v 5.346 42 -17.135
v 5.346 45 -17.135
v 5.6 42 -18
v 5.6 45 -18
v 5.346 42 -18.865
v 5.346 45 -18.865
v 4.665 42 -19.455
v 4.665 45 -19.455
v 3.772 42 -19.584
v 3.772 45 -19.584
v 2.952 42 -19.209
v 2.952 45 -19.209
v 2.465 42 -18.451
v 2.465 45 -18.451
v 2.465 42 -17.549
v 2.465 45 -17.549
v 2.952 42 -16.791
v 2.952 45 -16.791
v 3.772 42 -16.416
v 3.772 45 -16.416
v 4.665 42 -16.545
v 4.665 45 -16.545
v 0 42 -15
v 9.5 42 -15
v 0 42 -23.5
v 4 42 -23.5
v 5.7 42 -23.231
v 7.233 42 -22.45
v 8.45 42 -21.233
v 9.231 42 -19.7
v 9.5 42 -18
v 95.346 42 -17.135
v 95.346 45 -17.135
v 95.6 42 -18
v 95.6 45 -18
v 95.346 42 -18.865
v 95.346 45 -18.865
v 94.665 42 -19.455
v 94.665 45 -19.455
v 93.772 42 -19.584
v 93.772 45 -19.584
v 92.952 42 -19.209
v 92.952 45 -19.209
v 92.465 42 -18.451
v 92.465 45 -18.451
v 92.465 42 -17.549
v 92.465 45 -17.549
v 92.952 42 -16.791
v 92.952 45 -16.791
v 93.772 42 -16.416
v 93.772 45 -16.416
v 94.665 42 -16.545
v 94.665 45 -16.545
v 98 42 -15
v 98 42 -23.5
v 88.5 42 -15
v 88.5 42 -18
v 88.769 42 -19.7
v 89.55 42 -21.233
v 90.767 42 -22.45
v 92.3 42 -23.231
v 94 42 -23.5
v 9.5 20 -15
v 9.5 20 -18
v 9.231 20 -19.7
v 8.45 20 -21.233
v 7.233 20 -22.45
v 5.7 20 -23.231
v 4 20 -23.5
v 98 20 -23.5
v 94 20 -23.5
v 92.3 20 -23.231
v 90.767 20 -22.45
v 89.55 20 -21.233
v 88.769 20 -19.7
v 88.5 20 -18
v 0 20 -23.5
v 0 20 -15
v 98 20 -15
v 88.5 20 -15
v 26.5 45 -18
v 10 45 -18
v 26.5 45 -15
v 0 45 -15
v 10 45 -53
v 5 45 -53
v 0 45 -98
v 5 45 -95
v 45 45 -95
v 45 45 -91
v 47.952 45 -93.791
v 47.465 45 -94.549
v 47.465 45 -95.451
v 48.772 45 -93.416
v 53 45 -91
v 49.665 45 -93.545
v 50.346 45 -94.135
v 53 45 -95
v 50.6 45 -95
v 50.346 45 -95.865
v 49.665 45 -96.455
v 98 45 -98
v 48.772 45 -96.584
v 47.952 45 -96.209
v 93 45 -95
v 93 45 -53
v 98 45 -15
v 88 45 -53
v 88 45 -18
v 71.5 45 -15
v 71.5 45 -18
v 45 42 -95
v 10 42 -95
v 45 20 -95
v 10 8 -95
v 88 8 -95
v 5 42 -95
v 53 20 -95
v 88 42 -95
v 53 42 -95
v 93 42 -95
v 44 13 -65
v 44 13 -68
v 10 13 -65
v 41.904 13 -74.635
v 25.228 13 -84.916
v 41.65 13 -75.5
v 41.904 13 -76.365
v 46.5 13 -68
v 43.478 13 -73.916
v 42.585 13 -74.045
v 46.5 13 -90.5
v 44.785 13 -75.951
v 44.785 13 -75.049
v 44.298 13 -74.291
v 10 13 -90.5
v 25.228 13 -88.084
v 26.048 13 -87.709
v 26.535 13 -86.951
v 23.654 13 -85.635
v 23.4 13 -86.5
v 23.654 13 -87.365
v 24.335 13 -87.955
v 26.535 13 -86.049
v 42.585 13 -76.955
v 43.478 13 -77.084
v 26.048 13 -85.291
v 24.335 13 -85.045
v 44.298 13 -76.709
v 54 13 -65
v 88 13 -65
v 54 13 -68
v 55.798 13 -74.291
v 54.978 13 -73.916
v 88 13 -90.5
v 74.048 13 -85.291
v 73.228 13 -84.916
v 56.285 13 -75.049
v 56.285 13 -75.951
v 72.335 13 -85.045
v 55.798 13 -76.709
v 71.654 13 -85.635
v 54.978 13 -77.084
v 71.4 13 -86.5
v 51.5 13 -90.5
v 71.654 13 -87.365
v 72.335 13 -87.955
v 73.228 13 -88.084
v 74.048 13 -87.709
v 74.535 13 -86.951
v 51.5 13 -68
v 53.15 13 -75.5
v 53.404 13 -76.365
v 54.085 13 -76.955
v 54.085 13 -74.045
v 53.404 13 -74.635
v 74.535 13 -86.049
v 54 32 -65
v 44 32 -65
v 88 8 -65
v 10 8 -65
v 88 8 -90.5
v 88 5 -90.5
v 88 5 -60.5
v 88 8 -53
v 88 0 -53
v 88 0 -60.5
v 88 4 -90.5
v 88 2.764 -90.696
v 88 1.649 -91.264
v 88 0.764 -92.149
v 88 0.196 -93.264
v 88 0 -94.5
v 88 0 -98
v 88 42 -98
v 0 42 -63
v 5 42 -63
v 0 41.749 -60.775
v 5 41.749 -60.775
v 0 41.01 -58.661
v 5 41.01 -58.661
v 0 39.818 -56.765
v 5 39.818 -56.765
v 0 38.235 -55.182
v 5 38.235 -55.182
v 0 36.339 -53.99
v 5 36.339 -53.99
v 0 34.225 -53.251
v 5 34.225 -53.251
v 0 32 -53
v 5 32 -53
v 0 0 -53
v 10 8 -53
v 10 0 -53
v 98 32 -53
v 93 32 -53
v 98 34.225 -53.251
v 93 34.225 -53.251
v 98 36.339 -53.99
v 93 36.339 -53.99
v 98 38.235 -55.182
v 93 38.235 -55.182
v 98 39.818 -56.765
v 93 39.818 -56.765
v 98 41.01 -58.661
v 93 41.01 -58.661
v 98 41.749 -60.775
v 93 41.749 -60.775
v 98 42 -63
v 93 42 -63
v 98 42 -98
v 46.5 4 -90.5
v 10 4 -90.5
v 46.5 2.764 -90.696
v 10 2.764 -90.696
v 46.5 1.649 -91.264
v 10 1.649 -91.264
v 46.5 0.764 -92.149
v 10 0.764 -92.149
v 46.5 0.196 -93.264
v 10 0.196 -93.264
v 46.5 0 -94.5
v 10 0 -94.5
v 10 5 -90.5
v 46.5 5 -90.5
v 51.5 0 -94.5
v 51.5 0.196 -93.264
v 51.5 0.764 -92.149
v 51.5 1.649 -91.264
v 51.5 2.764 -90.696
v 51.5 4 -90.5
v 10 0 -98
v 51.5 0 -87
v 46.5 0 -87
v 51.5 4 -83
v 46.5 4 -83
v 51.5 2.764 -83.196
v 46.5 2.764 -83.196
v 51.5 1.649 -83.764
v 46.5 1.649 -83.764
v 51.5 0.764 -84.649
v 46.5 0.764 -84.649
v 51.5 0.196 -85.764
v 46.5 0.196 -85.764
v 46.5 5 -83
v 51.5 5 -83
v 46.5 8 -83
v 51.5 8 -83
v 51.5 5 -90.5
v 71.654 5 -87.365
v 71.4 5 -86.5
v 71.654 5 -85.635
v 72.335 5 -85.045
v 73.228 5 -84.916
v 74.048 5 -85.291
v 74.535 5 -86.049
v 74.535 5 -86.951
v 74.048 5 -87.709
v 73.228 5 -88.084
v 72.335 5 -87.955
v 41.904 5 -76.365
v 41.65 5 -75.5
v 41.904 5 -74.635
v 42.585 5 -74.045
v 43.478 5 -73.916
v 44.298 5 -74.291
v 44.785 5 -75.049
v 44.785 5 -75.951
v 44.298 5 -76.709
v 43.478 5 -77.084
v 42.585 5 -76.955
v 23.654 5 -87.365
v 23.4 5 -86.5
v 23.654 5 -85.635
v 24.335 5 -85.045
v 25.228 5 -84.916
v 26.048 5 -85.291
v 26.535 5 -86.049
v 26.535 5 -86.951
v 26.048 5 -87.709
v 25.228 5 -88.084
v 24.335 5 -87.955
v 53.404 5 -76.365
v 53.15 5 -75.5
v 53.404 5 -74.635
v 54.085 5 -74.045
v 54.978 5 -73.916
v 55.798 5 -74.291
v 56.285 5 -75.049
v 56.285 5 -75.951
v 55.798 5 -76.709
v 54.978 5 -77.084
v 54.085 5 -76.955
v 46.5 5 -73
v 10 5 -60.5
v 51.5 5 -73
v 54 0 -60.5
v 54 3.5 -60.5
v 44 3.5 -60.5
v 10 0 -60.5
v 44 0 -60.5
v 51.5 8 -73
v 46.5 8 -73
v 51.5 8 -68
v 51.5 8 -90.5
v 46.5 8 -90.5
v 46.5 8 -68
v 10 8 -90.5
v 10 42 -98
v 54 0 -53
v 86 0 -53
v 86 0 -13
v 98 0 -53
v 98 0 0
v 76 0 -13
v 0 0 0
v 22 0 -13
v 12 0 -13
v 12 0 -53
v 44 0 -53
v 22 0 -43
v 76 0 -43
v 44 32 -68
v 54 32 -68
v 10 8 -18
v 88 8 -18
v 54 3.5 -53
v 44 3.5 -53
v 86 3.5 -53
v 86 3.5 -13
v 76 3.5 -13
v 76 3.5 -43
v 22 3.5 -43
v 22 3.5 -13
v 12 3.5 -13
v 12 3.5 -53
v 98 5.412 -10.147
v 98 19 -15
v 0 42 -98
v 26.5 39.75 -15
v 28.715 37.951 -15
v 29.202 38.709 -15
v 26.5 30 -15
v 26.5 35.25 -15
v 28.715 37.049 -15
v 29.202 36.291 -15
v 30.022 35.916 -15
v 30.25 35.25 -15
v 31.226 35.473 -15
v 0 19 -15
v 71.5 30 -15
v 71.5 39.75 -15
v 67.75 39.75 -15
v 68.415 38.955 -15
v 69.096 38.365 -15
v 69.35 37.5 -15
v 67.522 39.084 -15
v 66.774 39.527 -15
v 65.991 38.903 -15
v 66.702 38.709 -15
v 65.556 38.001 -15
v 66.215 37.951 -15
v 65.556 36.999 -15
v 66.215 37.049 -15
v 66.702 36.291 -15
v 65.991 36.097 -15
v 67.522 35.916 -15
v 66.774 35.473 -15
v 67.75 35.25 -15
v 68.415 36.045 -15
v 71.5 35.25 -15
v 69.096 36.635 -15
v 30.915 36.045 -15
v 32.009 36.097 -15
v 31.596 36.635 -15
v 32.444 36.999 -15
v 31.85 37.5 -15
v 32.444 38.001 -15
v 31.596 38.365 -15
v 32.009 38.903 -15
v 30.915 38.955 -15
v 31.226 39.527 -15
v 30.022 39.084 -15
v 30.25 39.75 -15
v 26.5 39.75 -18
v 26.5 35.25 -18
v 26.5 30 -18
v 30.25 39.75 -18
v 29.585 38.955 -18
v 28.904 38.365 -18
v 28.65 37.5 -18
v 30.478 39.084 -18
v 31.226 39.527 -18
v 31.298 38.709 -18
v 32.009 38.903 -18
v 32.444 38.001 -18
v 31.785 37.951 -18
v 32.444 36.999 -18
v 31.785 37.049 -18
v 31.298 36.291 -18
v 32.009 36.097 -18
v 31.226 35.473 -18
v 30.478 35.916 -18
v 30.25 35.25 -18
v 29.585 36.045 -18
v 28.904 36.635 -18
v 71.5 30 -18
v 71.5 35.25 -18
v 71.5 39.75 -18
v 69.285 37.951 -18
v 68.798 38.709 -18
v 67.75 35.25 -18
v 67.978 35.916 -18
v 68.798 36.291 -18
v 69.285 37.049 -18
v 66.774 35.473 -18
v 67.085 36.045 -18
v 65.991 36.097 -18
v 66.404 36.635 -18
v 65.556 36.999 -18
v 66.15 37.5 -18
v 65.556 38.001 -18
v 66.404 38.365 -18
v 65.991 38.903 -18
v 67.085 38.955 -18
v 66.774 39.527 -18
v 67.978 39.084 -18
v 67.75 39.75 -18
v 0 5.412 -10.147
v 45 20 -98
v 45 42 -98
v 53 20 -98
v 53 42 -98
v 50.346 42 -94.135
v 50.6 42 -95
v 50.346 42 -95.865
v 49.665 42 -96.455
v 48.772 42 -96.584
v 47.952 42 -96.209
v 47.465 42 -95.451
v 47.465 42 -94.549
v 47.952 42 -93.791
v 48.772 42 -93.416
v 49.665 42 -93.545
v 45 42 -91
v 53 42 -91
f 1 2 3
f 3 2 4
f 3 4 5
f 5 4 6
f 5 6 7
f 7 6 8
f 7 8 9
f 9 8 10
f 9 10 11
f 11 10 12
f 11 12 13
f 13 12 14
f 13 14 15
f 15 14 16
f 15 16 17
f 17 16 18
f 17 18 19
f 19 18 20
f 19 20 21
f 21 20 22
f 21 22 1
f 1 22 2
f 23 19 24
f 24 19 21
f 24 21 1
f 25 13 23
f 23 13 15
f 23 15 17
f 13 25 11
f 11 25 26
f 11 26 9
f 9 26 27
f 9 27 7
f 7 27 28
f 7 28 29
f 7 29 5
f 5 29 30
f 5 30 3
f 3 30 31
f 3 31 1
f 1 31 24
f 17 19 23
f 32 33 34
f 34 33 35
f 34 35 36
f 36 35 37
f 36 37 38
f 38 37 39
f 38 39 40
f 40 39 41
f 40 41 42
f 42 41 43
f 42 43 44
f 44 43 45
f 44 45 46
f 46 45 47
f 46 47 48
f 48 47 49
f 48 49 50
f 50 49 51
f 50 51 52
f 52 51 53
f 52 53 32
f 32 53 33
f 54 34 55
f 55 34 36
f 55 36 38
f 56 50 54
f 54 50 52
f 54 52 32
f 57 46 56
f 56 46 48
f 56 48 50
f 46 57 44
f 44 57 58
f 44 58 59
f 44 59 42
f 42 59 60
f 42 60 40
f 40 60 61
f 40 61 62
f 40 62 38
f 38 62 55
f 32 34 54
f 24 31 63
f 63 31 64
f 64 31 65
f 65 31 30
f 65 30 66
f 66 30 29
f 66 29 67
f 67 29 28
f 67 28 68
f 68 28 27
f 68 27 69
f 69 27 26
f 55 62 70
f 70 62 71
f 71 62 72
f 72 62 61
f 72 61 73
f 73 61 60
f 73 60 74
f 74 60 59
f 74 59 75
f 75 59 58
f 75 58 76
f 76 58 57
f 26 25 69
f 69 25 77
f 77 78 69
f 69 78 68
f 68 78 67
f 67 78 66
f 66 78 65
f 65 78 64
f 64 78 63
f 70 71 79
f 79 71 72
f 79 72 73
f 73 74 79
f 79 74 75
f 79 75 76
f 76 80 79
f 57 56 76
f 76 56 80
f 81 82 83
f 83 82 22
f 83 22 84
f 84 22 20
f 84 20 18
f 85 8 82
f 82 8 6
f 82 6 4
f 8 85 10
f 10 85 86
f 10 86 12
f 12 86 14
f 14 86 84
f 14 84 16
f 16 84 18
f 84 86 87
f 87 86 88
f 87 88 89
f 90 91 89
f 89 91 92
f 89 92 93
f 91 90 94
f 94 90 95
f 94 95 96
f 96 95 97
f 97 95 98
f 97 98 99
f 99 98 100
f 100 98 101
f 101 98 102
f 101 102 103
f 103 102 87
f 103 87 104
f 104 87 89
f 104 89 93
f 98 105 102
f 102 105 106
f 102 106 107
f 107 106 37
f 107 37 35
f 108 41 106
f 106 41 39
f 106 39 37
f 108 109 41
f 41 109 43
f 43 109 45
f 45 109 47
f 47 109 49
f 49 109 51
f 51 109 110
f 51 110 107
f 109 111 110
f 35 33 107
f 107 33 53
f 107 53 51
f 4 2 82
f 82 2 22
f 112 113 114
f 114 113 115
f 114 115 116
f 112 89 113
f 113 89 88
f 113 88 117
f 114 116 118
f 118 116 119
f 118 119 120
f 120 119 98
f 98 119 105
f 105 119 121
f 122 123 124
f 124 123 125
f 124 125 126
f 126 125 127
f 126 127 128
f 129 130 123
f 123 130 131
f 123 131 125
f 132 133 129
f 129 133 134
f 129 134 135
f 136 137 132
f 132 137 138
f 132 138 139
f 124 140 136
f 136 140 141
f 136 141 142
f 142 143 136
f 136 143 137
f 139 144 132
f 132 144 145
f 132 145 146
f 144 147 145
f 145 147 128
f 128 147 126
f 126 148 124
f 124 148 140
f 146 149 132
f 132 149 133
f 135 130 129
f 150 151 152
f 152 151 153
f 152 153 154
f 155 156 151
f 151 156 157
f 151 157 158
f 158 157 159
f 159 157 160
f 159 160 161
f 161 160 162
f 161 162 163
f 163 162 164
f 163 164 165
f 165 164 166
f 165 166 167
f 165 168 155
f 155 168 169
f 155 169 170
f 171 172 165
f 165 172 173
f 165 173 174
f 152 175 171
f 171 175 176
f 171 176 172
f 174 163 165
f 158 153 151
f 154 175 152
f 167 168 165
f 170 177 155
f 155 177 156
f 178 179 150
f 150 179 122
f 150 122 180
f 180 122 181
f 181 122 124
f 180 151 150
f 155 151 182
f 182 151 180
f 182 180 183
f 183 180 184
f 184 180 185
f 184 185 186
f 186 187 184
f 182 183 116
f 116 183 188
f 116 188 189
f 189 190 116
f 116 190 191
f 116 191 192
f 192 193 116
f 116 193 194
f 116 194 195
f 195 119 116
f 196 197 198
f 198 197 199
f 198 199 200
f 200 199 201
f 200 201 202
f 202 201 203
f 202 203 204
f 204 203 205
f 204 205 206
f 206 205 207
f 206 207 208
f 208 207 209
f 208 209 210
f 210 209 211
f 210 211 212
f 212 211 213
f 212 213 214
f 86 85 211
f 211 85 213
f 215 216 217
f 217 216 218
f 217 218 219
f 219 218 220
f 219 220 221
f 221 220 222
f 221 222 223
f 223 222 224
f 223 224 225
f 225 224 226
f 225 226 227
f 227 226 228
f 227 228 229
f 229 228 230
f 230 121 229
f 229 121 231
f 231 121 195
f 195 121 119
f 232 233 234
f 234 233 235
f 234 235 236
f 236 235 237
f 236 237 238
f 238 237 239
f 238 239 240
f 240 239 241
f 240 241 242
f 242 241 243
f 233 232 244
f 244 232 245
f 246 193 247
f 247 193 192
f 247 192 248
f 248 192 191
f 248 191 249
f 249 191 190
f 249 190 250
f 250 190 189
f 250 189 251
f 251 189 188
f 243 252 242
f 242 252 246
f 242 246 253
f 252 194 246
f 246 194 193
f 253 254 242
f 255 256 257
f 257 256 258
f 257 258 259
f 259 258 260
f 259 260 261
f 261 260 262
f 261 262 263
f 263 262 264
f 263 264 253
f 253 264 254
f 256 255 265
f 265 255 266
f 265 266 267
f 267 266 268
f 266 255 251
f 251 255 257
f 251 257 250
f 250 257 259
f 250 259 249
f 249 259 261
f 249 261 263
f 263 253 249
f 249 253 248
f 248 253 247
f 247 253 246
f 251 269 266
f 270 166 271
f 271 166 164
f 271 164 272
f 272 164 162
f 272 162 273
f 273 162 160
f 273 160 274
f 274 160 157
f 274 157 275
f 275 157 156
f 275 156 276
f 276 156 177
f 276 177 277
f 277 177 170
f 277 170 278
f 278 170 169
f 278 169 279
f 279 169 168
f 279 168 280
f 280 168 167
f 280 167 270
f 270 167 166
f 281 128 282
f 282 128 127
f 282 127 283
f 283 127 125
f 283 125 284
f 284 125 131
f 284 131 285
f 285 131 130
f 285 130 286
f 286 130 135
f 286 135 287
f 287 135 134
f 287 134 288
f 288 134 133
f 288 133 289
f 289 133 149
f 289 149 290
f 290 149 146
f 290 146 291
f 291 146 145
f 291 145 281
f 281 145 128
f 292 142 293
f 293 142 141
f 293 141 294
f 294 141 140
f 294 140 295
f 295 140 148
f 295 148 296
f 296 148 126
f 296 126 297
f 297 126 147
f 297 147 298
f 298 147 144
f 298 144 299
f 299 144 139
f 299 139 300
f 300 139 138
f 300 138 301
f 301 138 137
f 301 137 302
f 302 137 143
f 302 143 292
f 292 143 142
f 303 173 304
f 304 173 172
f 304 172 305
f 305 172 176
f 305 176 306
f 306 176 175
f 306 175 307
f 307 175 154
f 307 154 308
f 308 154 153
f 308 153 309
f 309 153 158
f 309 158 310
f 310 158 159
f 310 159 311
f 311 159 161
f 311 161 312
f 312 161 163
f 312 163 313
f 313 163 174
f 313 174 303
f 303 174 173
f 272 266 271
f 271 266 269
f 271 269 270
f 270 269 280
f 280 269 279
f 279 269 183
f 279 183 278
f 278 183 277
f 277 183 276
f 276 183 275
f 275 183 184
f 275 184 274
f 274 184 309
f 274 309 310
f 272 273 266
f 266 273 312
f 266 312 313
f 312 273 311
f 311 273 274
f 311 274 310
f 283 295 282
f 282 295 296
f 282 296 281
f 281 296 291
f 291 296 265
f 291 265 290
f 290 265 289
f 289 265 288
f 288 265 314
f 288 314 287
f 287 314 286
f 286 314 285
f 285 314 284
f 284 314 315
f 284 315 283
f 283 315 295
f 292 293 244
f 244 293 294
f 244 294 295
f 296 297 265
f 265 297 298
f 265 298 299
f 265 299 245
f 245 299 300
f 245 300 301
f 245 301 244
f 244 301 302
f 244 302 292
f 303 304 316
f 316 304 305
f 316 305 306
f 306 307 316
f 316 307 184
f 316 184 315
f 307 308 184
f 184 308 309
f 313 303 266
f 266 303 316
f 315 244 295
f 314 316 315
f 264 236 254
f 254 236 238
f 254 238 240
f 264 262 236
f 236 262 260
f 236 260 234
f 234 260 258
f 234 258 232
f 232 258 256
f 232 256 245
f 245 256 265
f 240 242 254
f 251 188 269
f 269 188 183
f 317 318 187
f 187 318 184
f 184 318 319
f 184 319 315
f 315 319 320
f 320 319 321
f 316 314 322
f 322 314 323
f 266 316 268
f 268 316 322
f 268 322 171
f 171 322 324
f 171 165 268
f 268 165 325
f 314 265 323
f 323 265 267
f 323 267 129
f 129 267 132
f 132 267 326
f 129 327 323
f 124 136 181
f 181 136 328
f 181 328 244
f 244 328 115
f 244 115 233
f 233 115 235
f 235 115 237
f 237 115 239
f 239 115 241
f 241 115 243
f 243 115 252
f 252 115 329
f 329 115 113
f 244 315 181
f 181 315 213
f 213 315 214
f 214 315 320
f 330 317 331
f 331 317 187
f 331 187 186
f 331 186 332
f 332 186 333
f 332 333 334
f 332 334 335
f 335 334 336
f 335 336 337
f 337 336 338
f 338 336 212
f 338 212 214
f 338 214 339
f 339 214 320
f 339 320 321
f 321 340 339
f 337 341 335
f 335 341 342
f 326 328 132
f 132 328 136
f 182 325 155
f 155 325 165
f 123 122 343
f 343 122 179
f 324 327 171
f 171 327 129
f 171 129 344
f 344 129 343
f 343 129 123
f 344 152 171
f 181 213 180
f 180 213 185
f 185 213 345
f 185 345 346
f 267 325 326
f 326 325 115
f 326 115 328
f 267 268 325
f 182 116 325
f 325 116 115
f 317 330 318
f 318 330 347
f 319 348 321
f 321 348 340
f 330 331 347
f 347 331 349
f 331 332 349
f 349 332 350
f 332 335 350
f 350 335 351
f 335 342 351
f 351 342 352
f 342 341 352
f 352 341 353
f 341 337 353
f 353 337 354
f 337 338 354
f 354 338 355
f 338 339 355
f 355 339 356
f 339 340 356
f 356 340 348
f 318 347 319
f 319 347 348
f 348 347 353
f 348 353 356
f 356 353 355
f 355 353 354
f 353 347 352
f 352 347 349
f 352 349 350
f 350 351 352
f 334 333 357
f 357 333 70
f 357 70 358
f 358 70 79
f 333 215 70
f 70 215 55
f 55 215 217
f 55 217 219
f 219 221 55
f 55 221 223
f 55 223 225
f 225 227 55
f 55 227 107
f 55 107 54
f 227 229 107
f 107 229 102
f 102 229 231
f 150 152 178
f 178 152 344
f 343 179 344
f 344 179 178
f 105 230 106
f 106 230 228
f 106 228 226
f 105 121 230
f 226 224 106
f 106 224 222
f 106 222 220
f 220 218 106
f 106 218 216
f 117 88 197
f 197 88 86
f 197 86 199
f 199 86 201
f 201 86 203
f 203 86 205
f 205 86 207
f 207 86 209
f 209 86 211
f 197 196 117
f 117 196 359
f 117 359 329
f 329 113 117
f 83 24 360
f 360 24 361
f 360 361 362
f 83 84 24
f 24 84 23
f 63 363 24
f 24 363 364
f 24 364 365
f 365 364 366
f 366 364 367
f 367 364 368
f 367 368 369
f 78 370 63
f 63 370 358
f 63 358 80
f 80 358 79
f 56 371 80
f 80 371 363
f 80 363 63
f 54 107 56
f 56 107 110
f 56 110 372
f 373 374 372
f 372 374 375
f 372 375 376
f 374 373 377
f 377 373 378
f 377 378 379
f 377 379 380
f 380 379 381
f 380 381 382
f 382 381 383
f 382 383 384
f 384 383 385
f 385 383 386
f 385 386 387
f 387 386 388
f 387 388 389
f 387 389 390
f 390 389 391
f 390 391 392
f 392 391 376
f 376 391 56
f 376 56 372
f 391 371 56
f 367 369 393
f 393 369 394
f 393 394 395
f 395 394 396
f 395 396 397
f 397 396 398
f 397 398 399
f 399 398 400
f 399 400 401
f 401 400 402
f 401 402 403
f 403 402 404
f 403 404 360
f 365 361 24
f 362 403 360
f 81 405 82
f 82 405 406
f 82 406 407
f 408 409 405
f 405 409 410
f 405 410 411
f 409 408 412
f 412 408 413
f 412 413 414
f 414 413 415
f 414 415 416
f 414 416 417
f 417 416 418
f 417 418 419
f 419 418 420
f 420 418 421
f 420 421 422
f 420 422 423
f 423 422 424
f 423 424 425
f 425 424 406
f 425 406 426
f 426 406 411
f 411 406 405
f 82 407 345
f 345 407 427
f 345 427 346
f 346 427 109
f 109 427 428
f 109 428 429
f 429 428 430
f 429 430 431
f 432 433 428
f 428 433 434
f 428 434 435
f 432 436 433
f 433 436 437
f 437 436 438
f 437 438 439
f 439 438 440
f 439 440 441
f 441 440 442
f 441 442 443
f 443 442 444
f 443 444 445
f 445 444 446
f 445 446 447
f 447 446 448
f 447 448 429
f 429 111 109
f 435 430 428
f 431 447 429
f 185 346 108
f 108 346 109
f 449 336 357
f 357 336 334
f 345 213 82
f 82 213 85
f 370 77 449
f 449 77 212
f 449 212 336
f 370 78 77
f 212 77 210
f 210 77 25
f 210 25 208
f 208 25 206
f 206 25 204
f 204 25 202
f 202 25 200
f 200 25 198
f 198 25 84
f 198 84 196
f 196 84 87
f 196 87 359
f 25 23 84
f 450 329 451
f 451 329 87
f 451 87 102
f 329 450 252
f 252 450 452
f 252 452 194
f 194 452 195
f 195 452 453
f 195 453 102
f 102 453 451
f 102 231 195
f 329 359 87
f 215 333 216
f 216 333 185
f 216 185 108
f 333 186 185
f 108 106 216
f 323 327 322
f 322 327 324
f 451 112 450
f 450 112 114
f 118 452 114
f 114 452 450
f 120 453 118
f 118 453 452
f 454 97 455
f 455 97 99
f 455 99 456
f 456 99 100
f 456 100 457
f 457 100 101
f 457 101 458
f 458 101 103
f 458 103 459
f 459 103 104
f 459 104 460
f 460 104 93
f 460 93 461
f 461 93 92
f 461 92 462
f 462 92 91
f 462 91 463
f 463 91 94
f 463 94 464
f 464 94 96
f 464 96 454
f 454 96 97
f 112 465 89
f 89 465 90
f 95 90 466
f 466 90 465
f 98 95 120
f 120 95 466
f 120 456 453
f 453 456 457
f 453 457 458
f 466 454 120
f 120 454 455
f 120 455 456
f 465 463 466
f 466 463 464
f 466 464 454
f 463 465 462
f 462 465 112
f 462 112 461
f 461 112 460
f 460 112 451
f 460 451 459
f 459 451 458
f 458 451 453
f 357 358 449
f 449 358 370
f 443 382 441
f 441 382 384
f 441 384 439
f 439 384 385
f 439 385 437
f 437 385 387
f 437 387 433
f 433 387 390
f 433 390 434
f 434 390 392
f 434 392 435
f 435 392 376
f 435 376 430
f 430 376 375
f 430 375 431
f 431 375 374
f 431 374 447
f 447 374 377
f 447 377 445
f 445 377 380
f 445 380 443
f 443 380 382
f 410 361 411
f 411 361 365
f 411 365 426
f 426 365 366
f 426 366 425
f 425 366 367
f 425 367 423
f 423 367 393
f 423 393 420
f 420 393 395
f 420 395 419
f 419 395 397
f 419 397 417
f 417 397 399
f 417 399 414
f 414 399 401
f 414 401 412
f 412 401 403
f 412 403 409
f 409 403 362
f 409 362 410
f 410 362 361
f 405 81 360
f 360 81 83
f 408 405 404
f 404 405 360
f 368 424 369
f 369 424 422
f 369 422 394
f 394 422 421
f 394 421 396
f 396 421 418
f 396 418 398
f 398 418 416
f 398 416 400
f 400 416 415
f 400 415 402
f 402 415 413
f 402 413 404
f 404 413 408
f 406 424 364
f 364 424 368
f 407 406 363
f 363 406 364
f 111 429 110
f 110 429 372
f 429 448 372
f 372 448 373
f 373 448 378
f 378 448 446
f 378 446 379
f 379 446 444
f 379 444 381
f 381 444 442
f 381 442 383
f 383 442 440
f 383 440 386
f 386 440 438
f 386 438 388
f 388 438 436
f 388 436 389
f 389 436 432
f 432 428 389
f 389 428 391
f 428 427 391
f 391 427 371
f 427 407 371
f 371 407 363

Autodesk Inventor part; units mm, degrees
ref_plane "YZ Plane" through (0, 0, 0) normal (1, 0, 0) x (0, 1, 0)
ref_plane "XZ Plane" through (0, 0, 0) normal (0, 1, 0) x (-1, 0, 0)
ref_plane "XY Plane" through (0, 0, 0) normal (0, 0, 1) x (1, 0, 0)
sketch "Szkic1" plane through (0, 0, 0) normal (0, 1, 0) x (-1, 0, 0)
  line L0 (0, 0) -> (-98, 0)
  line L1 (-98, 0) -> (-98, -98)
  line L2 (-98, -98) -> (0, -98)
  line L3 (0, -98) -> (0, 0)
  line L4 (-88, -98) -> (-88, -53)
  line L5 (-88, -53) -> (-98, -53)
  line L6 (-10, -98) -> (-10, -53)
  line L7 (-10, -53) -> (0, -53)
  dimension "d0" = 98
  dimension "d1" = 98
  dimension "d2" = 45
  dimension "d3" = 10
  dimension "d4" = 10
extrude "Wyciągnięcie proste1" add sketch "Szkic1" along normal blind 8 contours L3 L7 L6 L2 L4 L5 L1 L0
sketch "Szkic2" plane through (0, 8, 0) normal (0, 1, 0) x (1, 0, 0)
  line L0 (0, 0) -> (98, 0)
  line L1 (98, 0) -> (98, 98)
  line L2 (98, 98) -> (0, 98)
  line L3 (0, 98) -> (0, 0)
  line L4 (10, 18) -> (88, 18)
  line L5 (88, 18) -> (88, 65)
  line L6 (88, 65) -> (10, 65)
  line L7 (10, 65) -> (10, 18)
  line L8 (98, 0) -> (98, 18) construction
  line L9 (88, 18) -> (98, 18) construction
  line L10 (98, 15) -> (0, 15)
  line L11 (88, 18) -> (88, 15) construction
  line L12 (98, 15) -> (98, 53)
  line L13 (88, 53) -> (98, 53)
  line L14 (0, 15) -> (0, 53)
  line L15 (10, 53) -> (0, 53)
  line L16 (10, 98) -> (10, 95)
  line L17 (10, 95) -> (88, 95)
  line L18 (88, 95) -> (88, 98)
  line L19 (44, 65) -> (44, 68)
  line L20 (44, 68) -> (54, 68)
  line L21 (54, 68) -> (54, 65)
  dimension "d7" = 98
  dimension "d8" = 98
  dimension "d9" = 47
  dimension "d10" = 78
  dimension "d11" = 18
  dimension "d12" = 10
  dimension "d13" = 3
  dimension "d14" = 38
  dimension "d15" = 38
  dimension "d16" = 3
  dimension "d17" = 78
  dimension "d30" = 3
  dimension "d31" = 10
  dimension "d32" = 44
  dimension "d36" = 10
  dimension "d37" = 0
  dimension "d38" = 38
extrude "Wyciągnięcie proste2" add sketch "Szkic2" along normal blind 37 contours L3 L15 L7 L4 L5 L13 L1 L10 | L2 L18 L17 L16
sketch "Szkic3" plane through (0, 45, 0) normal (0, 1, 0) x (1, 0, 0)
  line L0 (0, 0) -> (0, 98)
  line L1 (0, 98) -> (5, 98)
  line L2 (5, 98) -> (10, 98)
  line L3 (10, 98) -> (88, 98)
  line L4 (88, 98) -> (93, 98)
  line L5 (93, 98) -> (98, 98)
  line L6 (5, 98) -> (5, 53)
  line L7 (5, 53) -> (0, 53)
  line L8 (93, 98) -> (93, 53)
  line L9 (93, 53) -> (88, 53)
  line L10 (88, 53) -> (88, 98)
  line L11 (88, 98) -> (88, 95)
  line L12 (88, 95) -> (93, 95)
  line L13 (5, 95) -> (10, 95)
  line L14 (10, 95) -> (10, 98)
  line L15 (93, 53) -> (98, 53)
  line L16 (98, 53) -> (98, 98)
  dimension "d20" = 98
  dimension "d21" = 5
  dimension "d22" = 5
  dimension "d23" = 78
  dimension "d24" = 5
  dimension "d25" = 5
  dimension "d26" = 45
  dimension "d27" = 3
extrude "Wyciągnięcie proste3" add sketch "Szkic3" against normal blind 3 contours L4 L8 L12 L10 | L0 L1 L6 L7 | L2 L14 L13 L6 | L5 L16 L15 L8
extrude "Wyciągnięcie proste4" add sketch "Szkic2" along normal blind 24 contours L19 L20 L21 L6
sketch "Szkic4" plane through (98, 0, 0) normal (1, 0, 0) x (0, 0, -1)
  line L0 (0, 0) -> (15, 8)
  line L1 (15, 8) -> (15, 0)
  line L2 (15, 0) -> (0, 0)
  line L3 (15, 8) -> (0, 8)
  line L4 (0, 8) -> (0, 0)
  dimension "d41" = 15
  dimension "d42" = 8
extrude "Wyciągnięcie proste5" cut sketch "Szkic4" against normal through all contours L4 L3 L0
sketch "Szkic5" plane through (0, 0, 0) normal (0, -1, 0) x (1, 0, 0)
  line L0 (0, 0) -> (0, -13) construction
  line L1 (0, -13) -> (12, -13) construction
  line L2 (12, -13) -> (22, -13)
  line L3 (22, -13) -> (76, -13) construction
  line L4 (76, -13) -> (86, -13)
  line L5 (12, -13) -> (12, -53)
  line L6 (12, -53) -> (22, -53)
  line L7 (22, -53) -> (22, -13)
  line L8 (76, -13) -> (76, -53)
  line L9 (76, -53) -> (86, -53)
  line L10 (86, -53) -> (86, -13)
  line L11 (76, -53) -> (22, -53)
  line L12 (76, -43) -> (22, -43)
  line L13 (44, -53) -> (44, -83)
  line L14 (44, -83) -> (54, -83)
  line L15 (54, -83) -> (54, -53)
  line L16 (54, -73) -> (44, -73)
  point P0 (49, -83)
  dimension "d45" = 13
  dimension "d46" = 12
  dimension "d47" = 10
  dimension "d48" = 10
  dimension "d49" = 54
  dimension "d50" = 40
  dimension "d51" = 10
  dimension "d52" = 30
  dimension "d53" = 10
  dimension "d54" = 22
  dimension "d55" = 10
extrude "Wyciągnięcie proste6" cut sketch "Szkic5" against normal blind 3.5 contours L2 L7 L6 L5 | L12 L8 L11 L7 | L8 L4 L10 L9 | L11 L15 L16 L13
extrude "Wyciągnięcie proste7" cut sketch "Szkic5" against normal through all contours L16 L15 L14 L13
sketch "Szkic6" plane through (0, 0, 0) normal (0, -1, 0) x (1, 0, 0)
  line L0 (0, 0) -> (0, -53) construction
  line L1 (0, -53) -> (0, -98) construction
  line L2 (0, -53) -> (10, -53) construction
  line L3 (10, -53) -> (10, -75.5) construction
  line L4 (10, -60.5) -> (10, -90.5)
  line L5 (10, -60.5) -> (46.5, -60.5)
  line L6 (46.5, -60.5) -> (46.5, -90.5)
  line L7 (46.5, -90.5) -> (10, -90.5)
  line L8 (46.5, -90.5) -> (51.5, -90.5) construction
  line L9 (51.5, -90.5) -> (88, -90.5)
  line L10 (88, -90.5) -> (88, -60.5)
  line L11 (88, -60.5) -> (51.5, -60.5)
  line L12 (51.5, -60.5) -> (51.5, -90.5)
  line L13 (10, -75.5) -> (25, -75.5) construction
  line L14 (25, -64.5) -> (25, -86.5) construction
  circle A0 centre (25, -86.5) radius 1.6
  line L15 (88, -75.5) -> (73, -75.5) construction
  line L16 (73, -64.5) -> (73, -86.5) construction
  circle A1 centre (73, -86.5) radius 1.6
  line L17 (25, -75.5) -> (43.25, -75.5) construction
  circle A2 centre (43.25, -75.5) radius 1.6
  line L18 (73, -75.5) -> (54.75, -75.5) construction
  circle A3 centre (54.75, -75.5) radius 1.6
  line L19 (51.5, -60.5) -> (46.5, -60.5)
  line L20 (51.5, -82.5) -> (46.5, -82.5)
  point P0 (80.5, -75.5)
  point P1 (49, -82.5)
  dimension "d60" = 53
  dimension "d61" = 45
  dimension "d62" = 10
  dimension "d63" = 22.5
  dimension "d64" = 30
  dimension "d65" = 36.5
  dimension "d66" = 5
  dimension "d67" = 36.5
  dimension "d68" = 30
  dimension "d73" = 22
  dimension "d74" = 15
  dimension "d75" = 15
  dimension "d76" = 3.2
  dimension "d78" = 15
  dimension "d79" = 22
  dimension "d80" = 15
  dimension "d81" = 3.2
  dimension "d85" = 18.25
  dimension "d86" = 3.2
  dimension "d87" = 18.25
  dimension "d88" = 3.2
  dimension "d89" = 22
extrude "Wyciągnięcie proste8" add sketch "Szkic6" against normal blind 13 contours L5 L6 L7 L4 | L11 L10 L9 L12 | A0 | A1 | A2 | A3
extrude "Wyciągnięcie proste9" cut sketch "Szkic6" against normal blind 5 contours L5 L6 L7 L4 | L19 L12 L20 L6 | L11 L10 L9 L12 | A0 | A1 | A2 | A3
extrude "Wyciągnięcie proste10" cut sketch "Szkic6" against normal through all contours A0 | A1 | A2 | A3
fillet "Zaokrąglenie1" radius 4 3 edges at (49, 0, -83) (69.75, 0, -90.5) (28.25, 0, -90.5)
fillet "Zaokrąglenie2" radius 10 2 edges at (95.5, 42, -53) (2.5, 42, -53)
sketch "Szkic7" plane through (0, 13, 0) normal (0, 1, 0) x (1, 0, 0)
  line L0 (0, 0) -> (0, 60.5) construction
  line L1 (0, 60.5) -> (10, 60.5) construction
  line L2 (10, 60.5) -> (10, 65)
  line L3 (10, 65) -> (88, 65)
  line L4 (88, 65) -> (88, 60.5)
  line L5 (88, 60.5) -> (10, 60.5)
  dimension "d92" = 10
  dimension "d93" = 60.5
  dimension "d94" = 4.5
  dimension "d95" = 78
extrude "Wyciągnięcie proste11" cut sketch "Szkic7" against normal blind 5
sketch "Szkic8" plane through (0, 45, 0) normal (0, 1, 0) x (1, 0, 0)
  line L0 (0, 0) -> (0, 15) construction
  line L1 (0, 15) -> (0, 18)
  line L2 (0, 18) -> (4, 18)
  circle A0 centre (4, 18) radius 1.6
  circle A1 centre (4, 18) radius 5.5
  line L3 (9.5, 18) -> (9.5, 10)
  line L4 (4, 23.5) -> (-4, 23.5)
  line L5 (-4, 23.5) -> (-4, 10)
  line L6 (-4, 10) -> (9.5, 10)
  line L7 (0, 15) -> (98, 15) construction
  line L8 (98, 15) -> (98, 18) construction
  line L9 (98, 18) -> (94, 18) construction
  circle A2 centre (94, 18) radius 1.6
  circle A3 centre (94, 18) radius 5.5
  line L10 (94, 23.5) -> (102, 23.5)
  line L11 (102, 23.5) -> (102, 10)
  line L12 (102, 10) -> (88.5, 10)
  line L13 (88.5, 10) -> (88.5, 18)
  line L14 (98, 21.7749) -> (98, 15)
  line L15 (98, 15) -> (89.3902, 15)
  line L16 (98, 21.7749) -> (98, 23.5)
  line L17 (89.3902, 15) -> (88.5, 15)
  line L18 (9.5, 15) -> (8.6098, 15)
  line L19 (0, 15) -> (8.6098, 15)
  line L20 (0, 15) -> (0, 21.7749)
  line L21 (0, 23.5) -> (0, 21.7749)
  dimension "d98" = 15
  dimension "d99" = 4
  dimension "d100" = 3
  dimension "d101" = 3.2
  dimension "d102" = 11
  dimension "d103" = 8
  dimension "d104" = 8
  dimension "d105" = 98
  dimension "d106" = 3
  dimension "d107" = 4
  dimension "d108" = 11
  dimension "d109" = 3.2
  dimension "d110" = 8
  dimension "d111" = 8
extrude "Wyciągnięcie proste12" cut sketch "Szkic8" against normal blind 25 contours L19 A1 L20 L1 | A0 | L1 L20 A1 L19 | L18 L3 L6 L5 L4 L21 A1 | A1 L3 L18 | L21 L4 A1 | A2 | A3 L15 L14 | A3 L16 L10 L11 L12 L13 L17 | L14 L15 A3 | A3 L10 L16 | L17 L13 A3
extrude "Wyciągnięcie proste13" add sketch "Szkic8" against normal blind 3 contours L1 L20 A1 L19 | A1 L3 L18 | L21 L4 A1 | L14 L15 A3 | A3 L10 L16 | L17 L13 A3 picked at (4.2676, 15.4706) picked at (97.2, 18.2583)
sketch "Szkic9" plane through (0, 45, 0) normal (0, 1, 0) x (1, 0, 0)
  line L0 (0, 0) -> (0, 98) construction
  line L1 (0, 98) -> (49, 98) construction
  line L2 (49, 98) -> (49, 95) construction
  line L3 (49, 95) -> (49, 91) construction
  circle A0 centre (49, 95) radius 1.6
  line L4 (45, 91) -> (53, 91)
  line L5 (45, 91) -> (45, 98)
  line L6 (53, 91) -> (53, 98)
  line L7 (53, 98) -> (45, 98)
  dimension "d116" = 3
  dimension "d117" = 4
  dimension "d118" = 49
  dimension "d119" = 98
  dimension "d120" = 3.2
  dimension "d121" = 8
extrude "Wyciągnięcie proste14" cut sketch "Szkic9" against normal blind 25 contours A0 | L5 L7 L6 L4
extrude "Wyciągnięcie proste15" add sketch "Szkic9" against normal blind 3
sketch "Szkic10" plane through (98, 45, -15) normal (1, 0, 0) x (0, 0, -1)
  line L0 (-15, -45) -> (-5, -45) construction
  line L1 (-5, -45) -> (-5, -40) construction
  line L2 (-5, -40) -> (0, -40)
  line L3 (0, -40) -> (0, -26)
  line L4 (-5, -40) -> (0, -26)
  dimension "d126" = 10
  dimension "d128" = 5
  dimension "d129" = 5
  dimension "d130" = 14
extrude "Wyciągnięcie proste16" add sketch "Szkic10" against normal blind 98
sketch "Szkic11" plane through (0, 45, -15) normal (0, 0, 1) x (1, 0, 0)
  line L0 (0, -45) -> (49, -45) construction
  line L1 (49, -45) -> (49, -15) construction
  line L2 (26.5, -15) -> (71.5, -15)
  line L3 (26.5, -15) -> (26.5, 0)
  line L4 (26.5, 0) -> (71.5, 0)
  line L5 (71.5, 0) -> (71.5, -15)
  line L6 (49, -15) -> (49, -7.5) construction
  line L7 (30.25, -7.5) -> (67.75, -7.5) construction
  circle A0 centre (67.75, -7.5) radius 1.6
  circle A1 centre (30.25, -7.5) radius 1.6
  circle A2 centre (67.75, -7.5) radius 2.25
  circle A3 centre (30.25, -7.5) radius 2.25
  line L8 (30.25, -5.25) -> (26.5, -5.25)
  line L9 (30.25, -9.75) -> (26.5, -9.75)
  line L10 (67.75, -9.75) -> (71.5, -9.75)
  line L11 (67.75, -5.25) -> (71.5, -5.25)
  point P0 (0, -45)
  dimension "d133" = 30
  dimension "d134" = 49
  dimension "d135" = 45
  dimension "d136" = 15
  dimension "d137" = 7.5
  dimension "d138" = 37.5
  dimension "d139" = 3.2
  dimension "d140" = 3.2
  dimension "d141" = 4.5
  dimension "d142" = 4.5
extrude "Wyciągnięcie proste17" cut sketch "Szkic11" against normal blind 11 contours L3 L9 A3 L8 L4 L5 L11 A2 L10 L2 | A0 | A1
equation "\"d12\" = -0.5 * d10 + 0.5 * d8"
equation "\"d15\" = d14"
equation "\"d48\" = d47"
equation "\"d63\" = 0.5 * d61"
equation "\"d67\" = d65"
equation "\"d68\" = d64"
equation "\"d87\" = d85"
